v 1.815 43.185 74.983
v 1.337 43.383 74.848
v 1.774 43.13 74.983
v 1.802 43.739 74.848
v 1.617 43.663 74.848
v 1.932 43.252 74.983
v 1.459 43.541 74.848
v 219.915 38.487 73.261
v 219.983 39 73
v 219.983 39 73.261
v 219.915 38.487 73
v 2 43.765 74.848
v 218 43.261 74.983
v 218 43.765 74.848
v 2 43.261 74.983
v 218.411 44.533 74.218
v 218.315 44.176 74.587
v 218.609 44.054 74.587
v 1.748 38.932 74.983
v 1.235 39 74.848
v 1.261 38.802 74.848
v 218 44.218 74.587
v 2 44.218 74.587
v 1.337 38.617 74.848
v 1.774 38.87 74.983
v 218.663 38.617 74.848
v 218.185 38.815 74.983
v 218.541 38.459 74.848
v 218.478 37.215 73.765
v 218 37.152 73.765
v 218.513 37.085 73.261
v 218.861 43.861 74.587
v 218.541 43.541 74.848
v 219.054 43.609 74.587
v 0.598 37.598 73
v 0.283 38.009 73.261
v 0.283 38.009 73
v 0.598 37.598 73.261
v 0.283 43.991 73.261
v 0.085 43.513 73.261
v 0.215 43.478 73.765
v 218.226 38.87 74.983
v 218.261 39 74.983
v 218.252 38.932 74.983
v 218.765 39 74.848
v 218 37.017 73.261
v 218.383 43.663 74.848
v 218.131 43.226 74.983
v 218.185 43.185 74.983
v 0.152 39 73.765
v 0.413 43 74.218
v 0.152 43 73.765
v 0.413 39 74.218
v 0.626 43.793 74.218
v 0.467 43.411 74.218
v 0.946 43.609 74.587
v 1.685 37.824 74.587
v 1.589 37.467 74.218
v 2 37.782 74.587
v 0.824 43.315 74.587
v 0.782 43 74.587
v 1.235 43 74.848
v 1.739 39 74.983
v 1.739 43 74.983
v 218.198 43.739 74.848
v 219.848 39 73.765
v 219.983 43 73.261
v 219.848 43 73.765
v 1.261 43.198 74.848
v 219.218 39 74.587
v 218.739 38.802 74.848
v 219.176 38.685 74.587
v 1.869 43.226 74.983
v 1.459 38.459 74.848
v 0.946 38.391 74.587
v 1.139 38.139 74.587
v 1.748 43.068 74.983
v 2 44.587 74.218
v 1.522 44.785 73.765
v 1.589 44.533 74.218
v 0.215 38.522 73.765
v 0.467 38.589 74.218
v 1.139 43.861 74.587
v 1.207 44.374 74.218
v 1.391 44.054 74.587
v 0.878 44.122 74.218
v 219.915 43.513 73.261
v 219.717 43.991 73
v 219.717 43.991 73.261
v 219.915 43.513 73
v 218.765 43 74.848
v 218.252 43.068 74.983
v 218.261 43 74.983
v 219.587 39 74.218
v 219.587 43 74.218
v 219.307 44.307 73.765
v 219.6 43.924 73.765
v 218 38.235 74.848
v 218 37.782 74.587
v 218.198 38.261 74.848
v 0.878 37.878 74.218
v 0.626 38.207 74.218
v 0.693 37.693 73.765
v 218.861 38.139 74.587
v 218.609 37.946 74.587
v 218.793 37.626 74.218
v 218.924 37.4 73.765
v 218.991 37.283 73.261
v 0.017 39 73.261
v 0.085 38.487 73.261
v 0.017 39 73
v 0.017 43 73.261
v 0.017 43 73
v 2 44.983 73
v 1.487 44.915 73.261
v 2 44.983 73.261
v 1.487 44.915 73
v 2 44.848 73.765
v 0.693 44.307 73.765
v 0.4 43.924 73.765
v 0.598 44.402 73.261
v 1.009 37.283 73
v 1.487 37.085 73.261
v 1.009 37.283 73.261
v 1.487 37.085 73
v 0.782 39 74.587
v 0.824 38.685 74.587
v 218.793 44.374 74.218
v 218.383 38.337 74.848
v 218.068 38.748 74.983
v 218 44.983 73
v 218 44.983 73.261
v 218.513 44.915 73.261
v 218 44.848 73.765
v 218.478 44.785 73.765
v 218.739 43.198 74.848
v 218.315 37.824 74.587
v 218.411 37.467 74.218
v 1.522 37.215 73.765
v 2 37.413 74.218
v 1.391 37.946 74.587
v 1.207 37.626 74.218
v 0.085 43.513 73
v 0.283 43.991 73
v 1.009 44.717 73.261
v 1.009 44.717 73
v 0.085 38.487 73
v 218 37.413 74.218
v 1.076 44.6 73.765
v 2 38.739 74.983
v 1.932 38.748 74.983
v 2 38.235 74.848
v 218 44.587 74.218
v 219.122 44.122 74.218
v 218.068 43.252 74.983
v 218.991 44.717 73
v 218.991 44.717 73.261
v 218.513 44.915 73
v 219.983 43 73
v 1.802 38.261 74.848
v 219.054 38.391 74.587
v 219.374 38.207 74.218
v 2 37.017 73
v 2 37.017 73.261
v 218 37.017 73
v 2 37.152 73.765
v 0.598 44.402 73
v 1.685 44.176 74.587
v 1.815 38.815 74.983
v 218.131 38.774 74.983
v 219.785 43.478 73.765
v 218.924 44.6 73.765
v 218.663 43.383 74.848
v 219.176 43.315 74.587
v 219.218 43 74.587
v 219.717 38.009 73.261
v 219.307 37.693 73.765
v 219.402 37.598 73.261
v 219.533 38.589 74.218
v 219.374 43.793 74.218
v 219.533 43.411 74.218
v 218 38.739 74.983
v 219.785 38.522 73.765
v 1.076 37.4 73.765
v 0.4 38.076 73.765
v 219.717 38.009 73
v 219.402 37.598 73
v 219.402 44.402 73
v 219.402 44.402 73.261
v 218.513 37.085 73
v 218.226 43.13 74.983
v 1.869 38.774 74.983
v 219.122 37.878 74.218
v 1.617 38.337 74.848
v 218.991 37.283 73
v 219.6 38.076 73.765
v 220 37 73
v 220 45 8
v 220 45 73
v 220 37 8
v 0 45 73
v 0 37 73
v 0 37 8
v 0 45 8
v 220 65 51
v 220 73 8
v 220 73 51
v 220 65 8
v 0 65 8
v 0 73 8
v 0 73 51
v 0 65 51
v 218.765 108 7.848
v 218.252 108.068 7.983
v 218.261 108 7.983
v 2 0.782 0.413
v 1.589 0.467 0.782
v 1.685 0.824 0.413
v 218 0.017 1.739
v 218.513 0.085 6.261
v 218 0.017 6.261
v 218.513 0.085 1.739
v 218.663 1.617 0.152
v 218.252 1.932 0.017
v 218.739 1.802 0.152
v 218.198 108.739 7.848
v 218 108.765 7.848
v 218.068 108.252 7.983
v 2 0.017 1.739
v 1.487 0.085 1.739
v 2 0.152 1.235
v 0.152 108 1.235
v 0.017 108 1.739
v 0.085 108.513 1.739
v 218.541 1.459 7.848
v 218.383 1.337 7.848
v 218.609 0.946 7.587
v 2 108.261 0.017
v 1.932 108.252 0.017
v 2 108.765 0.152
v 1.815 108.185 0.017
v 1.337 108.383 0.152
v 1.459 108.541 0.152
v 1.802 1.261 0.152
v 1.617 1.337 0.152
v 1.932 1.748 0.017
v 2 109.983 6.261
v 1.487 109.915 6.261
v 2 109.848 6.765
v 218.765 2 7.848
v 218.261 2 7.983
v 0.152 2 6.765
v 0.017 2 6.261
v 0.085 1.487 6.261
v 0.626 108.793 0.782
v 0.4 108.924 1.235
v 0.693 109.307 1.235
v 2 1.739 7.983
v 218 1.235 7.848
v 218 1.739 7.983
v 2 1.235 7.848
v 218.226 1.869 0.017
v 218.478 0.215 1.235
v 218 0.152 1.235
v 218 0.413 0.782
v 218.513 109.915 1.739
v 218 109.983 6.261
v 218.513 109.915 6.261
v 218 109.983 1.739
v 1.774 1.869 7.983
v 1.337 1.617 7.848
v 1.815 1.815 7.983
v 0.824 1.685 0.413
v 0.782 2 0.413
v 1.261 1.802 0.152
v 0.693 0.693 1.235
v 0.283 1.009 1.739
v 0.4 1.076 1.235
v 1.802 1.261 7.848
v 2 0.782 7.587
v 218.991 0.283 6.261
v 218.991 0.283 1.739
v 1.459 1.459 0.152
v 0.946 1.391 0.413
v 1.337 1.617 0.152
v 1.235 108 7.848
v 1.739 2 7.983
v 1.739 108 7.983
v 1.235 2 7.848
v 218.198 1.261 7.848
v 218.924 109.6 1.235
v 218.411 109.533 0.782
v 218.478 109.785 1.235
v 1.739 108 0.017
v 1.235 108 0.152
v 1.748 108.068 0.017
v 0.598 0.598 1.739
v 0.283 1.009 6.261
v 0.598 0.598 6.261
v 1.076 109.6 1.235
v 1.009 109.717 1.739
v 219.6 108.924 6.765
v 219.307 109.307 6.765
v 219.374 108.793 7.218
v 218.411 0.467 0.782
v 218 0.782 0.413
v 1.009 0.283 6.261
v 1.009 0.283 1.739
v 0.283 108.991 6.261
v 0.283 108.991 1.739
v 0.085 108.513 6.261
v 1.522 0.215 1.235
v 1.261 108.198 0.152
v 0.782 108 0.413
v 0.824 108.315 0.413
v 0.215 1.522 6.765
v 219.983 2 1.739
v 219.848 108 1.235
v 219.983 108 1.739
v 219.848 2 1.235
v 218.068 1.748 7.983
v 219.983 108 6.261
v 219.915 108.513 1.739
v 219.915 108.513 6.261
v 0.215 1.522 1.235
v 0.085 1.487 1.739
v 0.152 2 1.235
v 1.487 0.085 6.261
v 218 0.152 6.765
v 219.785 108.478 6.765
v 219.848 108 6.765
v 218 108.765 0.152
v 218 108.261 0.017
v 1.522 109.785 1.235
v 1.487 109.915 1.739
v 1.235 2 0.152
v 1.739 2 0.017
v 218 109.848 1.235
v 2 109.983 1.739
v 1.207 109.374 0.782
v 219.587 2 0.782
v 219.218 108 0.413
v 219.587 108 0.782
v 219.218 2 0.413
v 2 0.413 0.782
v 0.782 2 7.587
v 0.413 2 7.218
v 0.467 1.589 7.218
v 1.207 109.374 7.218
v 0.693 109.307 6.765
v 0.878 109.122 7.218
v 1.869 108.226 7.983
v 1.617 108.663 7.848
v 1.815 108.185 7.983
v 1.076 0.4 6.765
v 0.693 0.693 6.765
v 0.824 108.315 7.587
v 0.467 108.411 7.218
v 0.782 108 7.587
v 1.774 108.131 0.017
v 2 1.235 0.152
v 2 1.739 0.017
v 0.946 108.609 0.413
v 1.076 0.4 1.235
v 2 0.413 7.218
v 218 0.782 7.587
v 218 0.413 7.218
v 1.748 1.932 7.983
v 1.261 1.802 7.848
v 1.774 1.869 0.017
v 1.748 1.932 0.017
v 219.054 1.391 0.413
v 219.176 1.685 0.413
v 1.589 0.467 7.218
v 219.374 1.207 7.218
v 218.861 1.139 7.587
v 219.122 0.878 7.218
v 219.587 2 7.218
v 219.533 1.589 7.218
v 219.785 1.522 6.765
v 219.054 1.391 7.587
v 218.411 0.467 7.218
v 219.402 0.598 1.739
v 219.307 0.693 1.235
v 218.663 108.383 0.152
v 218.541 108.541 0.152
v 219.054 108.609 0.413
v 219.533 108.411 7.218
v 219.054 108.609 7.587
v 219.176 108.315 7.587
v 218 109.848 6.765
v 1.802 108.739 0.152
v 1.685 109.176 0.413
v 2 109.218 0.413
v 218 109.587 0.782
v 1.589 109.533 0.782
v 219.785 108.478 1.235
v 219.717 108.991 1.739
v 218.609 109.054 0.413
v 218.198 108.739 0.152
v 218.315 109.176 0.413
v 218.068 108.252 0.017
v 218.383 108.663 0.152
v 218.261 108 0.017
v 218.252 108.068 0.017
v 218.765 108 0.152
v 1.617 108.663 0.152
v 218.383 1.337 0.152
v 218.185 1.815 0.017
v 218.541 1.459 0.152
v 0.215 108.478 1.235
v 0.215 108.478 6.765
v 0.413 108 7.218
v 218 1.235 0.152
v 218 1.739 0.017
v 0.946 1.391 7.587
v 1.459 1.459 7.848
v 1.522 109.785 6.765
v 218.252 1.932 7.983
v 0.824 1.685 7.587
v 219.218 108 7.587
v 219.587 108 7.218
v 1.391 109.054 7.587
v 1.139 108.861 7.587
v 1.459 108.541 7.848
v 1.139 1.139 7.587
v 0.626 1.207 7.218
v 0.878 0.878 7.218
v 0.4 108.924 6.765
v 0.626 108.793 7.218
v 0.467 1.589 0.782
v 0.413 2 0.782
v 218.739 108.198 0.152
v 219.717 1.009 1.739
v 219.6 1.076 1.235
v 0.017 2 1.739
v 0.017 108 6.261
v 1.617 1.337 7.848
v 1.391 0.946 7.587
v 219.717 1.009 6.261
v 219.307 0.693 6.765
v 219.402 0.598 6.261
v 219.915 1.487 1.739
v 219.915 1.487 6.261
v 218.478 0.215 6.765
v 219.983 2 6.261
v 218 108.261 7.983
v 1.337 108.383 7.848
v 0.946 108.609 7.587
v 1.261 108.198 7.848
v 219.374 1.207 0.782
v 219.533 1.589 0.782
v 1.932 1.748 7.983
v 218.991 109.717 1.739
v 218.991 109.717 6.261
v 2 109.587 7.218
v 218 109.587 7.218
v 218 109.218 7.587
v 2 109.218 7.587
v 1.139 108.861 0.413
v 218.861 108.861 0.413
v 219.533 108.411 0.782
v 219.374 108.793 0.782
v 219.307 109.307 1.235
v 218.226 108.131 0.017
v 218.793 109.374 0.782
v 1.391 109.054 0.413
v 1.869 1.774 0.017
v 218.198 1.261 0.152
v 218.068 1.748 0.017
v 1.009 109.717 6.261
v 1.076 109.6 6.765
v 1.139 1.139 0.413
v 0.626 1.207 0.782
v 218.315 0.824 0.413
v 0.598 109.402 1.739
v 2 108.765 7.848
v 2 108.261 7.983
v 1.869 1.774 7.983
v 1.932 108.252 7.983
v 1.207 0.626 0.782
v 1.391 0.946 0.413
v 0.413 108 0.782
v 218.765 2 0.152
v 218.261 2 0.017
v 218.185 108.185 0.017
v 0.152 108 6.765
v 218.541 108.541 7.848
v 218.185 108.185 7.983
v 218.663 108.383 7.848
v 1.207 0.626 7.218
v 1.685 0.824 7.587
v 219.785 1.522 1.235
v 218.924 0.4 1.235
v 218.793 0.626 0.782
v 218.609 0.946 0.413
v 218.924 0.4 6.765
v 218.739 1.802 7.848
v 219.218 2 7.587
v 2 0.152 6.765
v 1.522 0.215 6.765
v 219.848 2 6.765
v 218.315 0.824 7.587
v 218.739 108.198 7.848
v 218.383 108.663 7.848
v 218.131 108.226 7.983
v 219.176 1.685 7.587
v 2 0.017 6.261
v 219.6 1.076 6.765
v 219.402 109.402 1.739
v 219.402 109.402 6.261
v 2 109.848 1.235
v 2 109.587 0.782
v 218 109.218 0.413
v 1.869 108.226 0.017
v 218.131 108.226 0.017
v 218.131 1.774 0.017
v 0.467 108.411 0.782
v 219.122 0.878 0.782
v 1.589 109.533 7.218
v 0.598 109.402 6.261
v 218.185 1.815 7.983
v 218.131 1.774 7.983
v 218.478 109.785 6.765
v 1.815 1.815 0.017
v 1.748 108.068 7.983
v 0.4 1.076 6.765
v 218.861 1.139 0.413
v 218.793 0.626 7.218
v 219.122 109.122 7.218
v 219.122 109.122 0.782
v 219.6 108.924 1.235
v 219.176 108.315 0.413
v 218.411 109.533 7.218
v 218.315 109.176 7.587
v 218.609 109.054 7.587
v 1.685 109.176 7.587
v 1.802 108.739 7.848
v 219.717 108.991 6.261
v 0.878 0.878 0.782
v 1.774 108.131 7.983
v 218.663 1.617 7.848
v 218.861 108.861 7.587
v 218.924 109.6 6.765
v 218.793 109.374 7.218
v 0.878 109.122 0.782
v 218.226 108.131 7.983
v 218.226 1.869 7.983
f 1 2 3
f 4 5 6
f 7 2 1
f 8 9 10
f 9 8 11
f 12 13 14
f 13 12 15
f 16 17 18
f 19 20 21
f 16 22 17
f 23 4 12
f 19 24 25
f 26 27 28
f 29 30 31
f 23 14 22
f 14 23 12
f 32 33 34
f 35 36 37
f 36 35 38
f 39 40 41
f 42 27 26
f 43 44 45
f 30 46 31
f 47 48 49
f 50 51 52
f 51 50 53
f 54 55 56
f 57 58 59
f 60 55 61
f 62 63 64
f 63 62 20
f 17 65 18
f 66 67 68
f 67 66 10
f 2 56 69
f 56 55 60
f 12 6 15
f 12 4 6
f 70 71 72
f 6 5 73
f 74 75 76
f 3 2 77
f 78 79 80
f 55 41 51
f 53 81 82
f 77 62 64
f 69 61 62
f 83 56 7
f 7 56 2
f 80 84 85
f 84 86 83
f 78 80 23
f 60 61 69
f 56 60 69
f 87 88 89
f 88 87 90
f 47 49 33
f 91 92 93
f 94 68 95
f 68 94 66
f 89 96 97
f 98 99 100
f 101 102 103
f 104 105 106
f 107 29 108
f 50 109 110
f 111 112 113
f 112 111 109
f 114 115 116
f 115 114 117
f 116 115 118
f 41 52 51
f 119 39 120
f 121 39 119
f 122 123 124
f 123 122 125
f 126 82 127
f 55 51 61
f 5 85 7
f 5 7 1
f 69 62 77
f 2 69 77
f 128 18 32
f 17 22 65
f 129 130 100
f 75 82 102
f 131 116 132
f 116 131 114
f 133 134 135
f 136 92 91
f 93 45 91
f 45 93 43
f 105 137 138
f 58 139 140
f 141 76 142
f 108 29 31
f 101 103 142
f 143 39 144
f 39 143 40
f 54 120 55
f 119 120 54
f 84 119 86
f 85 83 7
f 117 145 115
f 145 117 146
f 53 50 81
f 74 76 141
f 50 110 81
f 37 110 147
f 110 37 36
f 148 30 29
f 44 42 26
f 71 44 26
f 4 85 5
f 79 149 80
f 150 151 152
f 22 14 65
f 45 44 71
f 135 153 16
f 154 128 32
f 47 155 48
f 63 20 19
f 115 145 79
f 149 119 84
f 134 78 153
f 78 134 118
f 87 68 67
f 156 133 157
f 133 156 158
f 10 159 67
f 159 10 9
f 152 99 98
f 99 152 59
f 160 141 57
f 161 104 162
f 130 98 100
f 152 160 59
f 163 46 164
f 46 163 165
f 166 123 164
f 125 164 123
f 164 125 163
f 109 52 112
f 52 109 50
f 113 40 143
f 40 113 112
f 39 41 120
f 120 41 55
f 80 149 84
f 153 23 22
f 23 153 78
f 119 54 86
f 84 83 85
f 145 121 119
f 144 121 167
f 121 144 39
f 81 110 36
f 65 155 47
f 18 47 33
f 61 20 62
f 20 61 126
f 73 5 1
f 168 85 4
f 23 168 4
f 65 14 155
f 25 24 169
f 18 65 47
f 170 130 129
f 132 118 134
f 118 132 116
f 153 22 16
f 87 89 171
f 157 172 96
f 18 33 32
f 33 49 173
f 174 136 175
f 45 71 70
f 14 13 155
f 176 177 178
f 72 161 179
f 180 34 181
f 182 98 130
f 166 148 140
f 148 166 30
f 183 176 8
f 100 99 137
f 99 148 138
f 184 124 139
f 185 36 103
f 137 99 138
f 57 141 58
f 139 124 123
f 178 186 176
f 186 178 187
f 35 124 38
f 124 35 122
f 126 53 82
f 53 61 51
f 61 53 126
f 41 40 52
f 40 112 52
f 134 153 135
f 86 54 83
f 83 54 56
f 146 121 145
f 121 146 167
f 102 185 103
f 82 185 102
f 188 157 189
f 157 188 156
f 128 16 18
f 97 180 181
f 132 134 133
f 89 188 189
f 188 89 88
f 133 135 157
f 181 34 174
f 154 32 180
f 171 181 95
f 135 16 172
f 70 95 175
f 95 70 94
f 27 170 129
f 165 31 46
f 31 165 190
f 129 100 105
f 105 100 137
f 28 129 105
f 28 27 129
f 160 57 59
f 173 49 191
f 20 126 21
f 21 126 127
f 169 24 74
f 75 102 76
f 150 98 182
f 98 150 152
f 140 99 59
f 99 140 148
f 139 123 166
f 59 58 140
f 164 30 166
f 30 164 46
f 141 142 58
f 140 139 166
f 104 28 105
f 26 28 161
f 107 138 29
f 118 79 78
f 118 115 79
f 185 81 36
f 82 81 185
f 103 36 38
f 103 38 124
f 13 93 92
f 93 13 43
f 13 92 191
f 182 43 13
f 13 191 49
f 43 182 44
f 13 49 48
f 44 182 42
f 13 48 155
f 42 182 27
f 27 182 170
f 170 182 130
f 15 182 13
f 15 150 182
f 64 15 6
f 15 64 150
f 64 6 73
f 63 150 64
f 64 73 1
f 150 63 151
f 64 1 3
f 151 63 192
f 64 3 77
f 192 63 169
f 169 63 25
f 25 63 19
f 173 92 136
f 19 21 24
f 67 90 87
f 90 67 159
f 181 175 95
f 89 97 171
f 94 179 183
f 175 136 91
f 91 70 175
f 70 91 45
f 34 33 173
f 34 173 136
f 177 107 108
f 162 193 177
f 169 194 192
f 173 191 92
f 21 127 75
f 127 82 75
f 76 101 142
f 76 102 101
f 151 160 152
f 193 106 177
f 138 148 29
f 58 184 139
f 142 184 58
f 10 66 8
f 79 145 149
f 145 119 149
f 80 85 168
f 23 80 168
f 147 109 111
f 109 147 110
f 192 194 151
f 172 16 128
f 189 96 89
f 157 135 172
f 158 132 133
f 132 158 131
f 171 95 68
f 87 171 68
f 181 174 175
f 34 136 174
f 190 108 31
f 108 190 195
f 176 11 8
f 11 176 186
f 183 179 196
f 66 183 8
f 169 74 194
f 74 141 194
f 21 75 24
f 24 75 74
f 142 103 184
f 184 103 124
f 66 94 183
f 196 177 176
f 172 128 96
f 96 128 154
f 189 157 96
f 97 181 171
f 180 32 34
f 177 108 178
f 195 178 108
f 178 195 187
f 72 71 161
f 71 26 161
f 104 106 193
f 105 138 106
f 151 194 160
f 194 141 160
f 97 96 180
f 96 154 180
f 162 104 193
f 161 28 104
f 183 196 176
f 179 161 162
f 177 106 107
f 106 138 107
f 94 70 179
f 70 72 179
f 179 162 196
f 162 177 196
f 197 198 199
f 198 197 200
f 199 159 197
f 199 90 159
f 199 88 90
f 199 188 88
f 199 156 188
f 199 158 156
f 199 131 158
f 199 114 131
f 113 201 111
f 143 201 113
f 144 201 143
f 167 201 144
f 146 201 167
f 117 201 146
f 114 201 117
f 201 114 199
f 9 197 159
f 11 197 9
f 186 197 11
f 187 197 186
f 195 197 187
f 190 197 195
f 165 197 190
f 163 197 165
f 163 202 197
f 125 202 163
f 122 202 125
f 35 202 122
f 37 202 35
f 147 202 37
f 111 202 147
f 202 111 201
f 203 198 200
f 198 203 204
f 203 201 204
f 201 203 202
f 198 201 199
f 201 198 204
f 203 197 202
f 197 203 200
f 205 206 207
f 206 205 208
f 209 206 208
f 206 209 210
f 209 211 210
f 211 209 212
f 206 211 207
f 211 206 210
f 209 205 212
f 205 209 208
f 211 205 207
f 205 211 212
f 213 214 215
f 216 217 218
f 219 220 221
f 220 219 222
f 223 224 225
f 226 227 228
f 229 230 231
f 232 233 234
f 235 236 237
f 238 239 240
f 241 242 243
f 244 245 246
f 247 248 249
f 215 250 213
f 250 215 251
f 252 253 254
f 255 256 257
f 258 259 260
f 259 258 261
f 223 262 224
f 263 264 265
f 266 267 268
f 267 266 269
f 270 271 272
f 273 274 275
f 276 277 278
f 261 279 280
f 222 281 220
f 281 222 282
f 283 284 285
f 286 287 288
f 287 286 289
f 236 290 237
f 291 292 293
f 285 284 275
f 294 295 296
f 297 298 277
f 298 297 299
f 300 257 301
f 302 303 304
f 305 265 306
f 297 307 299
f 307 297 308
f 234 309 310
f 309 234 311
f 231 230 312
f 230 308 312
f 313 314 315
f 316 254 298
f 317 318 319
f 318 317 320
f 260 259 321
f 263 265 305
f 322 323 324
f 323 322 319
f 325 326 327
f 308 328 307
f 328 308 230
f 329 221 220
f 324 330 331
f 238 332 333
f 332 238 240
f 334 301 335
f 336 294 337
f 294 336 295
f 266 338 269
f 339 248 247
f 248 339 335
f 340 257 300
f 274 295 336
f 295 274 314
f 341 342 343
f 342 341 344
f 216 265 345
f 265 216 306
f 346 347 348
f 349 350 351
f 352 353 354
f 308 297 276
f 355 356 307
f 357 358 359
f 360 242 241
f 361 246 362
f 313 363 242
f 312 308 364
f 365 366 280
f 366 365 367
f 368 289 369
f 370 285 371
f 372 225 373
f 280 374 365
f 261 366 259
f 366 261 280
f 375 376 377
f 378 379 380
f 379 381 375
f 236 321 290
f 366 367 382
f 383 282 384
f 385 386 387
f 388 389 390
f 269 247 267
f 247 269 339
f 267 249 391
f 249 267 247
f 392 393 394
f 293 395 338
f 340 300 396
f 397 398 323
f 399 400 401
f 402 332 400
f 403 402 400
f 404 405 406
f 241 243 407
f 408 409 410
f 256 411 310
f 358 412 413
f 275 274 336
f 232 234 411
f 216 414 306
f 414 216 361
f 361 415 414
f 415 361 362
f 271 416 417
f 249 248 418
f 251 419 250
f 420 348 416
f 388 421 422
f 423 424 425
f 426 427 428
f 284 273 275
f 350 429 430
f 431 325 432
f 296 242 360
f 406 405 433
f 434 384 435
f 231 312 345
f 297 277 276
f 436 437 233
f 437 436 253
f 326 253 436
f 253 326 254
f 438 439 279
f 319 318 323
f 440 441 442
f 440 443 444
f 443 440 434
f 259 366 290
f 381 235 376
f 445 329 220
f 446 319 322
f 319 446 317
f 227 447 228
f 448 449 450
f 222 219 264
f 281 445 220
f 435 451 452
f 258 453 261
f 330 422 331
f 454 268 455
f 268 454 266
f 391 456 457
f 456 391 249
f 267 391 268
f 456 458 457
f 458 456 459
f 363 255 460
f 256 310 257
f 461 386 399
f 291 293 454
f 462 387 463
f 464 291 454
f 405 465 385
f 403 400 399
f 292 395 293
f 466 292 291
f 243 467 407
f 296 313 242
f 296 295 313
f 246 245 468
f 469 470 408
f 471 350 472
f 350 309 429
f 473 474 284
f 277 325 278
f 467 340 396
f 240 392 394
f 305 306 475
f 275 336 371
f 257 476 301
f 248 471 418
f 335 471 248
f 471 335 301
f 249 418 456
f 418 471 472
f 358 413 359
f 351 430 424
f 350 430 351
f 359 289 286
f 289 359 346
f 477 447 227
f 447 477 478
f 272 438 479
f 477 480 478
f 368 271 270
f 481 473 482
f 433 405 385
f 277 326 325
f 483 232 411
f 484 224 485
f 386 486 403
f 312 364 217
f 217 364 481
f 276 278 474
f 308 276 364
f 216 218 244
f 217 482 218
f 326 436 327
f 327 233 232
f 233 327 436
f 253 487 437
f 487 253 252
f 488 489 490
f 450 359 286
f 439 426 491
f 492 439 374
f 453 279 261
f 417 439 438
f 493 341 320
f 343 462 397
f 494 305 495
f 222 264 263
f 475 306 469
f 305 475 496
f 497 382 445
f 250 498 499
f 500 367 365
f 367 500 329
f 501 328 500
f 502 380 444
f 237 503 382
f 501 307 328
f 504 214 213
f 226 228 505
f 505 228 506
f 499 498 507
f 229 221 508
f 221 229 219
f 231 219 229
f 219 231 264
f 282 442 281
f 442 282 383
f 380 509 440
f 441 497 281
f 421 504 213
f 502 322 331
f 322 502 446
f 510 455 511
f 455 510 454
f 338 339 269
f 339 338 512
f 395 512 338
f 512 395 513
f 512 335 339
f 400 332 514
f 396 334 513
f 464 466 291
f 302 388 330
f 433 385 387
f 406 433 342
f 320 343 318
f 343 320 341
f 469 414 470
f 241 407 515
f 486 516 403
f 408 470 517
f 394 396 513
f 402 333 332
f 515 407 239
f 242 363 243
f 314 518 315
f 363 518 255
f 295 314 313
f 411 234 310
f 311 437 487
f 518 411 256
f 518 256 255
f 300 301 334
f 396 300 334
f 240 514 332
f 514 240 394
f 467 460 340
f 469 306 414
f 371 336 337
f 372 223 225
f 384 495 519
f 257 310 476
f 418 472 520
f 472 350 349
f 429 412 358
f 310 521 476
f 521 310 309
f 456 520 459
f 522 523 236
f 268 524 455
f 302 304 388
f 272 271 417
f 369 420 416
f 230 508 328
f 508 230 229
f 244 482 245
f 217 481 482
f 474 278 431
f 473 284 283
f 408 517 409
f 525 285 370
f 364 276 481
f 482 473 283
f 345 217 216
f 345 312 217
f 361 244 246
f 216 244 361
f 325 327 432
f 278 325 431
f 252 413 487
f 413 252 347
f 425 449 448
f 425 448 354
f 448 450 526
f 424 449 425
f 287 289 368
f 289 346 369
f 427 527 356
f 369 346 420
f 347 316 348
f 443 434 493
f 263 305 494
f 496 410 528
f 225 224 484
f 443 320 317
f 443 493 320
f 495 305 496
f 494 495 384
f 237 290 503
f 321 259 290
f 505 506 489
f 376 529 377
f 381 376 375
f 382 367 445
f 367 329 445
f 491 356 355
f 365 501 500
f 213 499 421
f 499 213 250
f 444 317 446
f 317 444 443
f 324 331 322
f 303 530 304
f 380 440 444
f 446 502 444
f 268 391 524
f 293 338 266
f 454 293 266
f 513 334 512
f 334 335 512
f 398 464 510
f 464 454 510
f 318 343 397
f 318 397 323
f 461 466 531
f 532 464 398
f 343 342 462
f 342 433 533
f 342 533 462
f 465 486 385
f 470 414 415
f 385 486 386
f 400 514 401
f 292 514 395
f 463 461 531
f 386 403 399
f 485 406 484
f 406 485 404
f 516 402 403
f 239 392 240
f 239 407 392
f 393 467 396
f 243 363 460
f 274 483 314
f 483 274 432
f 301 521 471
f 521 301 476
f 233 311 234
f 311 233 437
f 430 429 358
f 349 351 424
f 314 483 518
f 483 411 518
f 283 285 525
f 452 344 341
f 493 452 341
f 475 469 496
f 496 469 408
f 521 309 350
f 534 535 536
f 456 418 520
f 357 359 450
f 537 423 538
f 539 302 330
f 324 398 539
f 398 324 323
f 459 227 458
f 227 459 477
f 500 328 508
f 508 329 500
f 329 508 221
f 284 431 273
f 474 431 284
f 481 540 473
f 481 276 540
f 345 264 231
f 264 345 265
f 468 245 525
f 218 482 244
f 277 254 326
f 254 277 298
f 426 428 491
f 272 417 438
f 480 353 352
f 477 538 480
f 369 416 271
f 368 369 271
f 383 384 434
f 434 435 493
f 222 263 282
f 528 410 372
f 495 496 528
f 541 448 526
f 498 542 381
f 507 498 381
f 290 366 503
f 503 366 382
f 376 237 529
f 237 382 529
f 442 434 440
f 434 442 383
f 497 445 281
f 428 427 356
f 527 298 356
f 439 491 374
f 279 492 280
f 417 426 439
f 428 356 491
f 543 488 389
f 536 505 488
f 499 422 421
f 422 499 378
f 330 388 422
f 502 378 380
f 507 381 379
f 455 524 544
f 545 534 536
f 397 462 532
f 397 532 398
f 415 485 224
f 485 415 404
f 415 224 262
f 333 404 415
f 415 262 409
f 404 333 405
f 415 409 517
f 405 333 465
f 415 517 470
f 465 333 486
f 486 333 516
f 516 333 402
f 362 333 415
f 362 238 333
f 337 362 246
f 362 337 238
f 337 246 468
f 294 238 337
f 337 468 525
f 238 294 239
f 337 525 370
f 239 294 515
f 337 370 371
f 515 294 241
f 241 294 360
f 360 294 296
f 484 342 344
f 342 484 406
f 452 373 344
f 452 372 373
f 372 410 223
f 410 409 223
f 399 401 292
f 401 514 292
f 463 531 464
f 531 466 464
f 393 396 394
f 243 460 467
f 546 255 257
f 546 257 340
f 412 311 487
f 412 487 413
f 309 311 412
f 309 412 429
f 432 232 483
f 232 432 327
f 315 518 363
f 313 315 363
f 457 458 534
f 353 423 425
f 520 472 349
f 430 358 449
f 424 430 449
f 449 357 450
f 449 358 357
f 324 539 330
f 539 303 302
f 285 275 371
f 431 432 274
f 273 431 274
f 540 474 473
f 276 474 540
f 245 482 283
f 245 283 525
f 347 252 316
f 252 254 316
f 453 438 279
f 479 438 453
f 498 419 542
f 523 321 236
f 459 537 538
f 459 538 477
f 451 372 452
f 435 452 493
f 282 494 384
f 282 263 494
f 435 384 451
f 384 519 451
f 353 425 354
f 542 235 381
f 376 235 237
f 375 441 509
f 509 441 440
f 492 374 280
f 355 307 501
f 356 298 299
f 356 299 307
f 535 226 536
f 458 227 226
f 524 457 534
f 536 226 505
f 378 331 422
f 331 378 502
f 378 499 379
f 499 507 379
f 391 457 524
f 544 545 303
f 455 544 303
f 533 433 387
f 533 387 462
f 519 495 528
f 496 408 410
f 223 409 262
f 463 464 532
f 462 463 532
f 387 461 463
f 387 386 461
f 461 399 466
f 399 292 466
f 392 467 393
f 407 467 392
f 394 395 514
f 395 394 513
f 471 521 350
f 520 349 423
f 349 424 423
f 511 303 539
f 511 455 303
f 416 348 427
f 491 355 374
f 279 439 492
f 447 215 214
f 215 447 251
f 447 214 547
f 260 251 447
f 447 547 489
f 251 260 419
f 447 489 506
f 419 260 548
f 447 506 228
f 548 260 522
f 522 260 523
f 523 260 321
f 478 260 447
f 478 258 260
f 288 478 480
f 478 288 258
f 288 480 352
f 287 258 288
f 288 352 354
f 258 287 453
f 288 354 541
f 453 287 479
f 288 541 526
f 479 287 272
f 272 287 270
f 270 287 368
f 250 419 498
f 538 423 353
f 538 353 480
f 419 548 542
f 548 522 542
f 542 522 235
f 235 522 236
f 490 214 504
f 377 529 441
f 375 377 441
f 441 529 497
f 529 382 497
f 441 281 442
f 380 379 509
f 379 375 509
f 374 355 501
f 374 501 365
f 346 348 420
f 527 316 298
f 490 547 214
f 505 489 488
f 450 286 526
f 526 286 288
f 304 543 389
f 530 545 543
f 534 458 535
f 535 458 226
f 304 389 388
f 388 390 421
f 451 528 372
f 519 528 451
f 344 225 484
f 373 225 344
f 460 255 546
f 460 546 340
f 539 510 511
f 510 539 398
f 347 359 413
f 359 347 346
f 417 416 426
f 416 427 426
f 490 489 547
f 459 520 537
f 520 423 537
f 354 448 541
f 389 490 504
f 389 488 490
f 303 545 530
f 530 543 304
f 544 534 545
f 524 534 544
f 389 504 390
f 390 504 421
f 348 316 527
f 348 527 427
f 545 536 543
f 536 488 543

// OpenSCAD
laptop_thickness = 18.9;
slot_clearance = 1.1;
slot_width = laptop_thickness + slot_clearance;

stand_length = 220;
base_depth = 110;
base_thickness = 8;
wall_height = 75;
wall_thickness = 8;
vent_cutout_start_z = 51;
corner_radius = 2;
$fn = 24;

slot_center_y = base_depth / 2;
slot_min_y = slot_center_y - slot_width / 2;
slot_max_y = slot_center_y + slot_width / 2;

module rounded_box(size, radius) {
  translate([radius, radius, radius])
    minkowski() {
      cube([
        size[0] - 2 * radius,
        size[1] - 2 * radius,
        size[2] - 2 * radius
      ]);
      sphere(radius);
    }
}

module solid_side_wall(y_pos) {
  translate([0, y_pos, base_thickness])
    rounded_box([stand_length, wall_thickness, wall_height - base_thickness], corner_radius);

  translate([0, y_pos, base_thickness])
    cube([stand_length, wall_thickness, wall_height - base_thickness - corner_radius]);
}

module side_wall(y_pos, vent_cutout = false) {
  difference() {
    solid_side_wall(y_pos);

    if (vent_cutout)
      translate([-1, y_pos - 1, vent_cutout_start_z])
        cube([
          stand_length + 2,
          wall_thickness + 2,
          wall_height - vent_cutout_start_z + 1
        ]);
  }
}

union() {
  rounded_box([stand_length, base_depth, base_thickness], corner_radius);

  side_wall(slot_min_y - wall_thickness);
  side_wall(slot_max_y, true);
}
